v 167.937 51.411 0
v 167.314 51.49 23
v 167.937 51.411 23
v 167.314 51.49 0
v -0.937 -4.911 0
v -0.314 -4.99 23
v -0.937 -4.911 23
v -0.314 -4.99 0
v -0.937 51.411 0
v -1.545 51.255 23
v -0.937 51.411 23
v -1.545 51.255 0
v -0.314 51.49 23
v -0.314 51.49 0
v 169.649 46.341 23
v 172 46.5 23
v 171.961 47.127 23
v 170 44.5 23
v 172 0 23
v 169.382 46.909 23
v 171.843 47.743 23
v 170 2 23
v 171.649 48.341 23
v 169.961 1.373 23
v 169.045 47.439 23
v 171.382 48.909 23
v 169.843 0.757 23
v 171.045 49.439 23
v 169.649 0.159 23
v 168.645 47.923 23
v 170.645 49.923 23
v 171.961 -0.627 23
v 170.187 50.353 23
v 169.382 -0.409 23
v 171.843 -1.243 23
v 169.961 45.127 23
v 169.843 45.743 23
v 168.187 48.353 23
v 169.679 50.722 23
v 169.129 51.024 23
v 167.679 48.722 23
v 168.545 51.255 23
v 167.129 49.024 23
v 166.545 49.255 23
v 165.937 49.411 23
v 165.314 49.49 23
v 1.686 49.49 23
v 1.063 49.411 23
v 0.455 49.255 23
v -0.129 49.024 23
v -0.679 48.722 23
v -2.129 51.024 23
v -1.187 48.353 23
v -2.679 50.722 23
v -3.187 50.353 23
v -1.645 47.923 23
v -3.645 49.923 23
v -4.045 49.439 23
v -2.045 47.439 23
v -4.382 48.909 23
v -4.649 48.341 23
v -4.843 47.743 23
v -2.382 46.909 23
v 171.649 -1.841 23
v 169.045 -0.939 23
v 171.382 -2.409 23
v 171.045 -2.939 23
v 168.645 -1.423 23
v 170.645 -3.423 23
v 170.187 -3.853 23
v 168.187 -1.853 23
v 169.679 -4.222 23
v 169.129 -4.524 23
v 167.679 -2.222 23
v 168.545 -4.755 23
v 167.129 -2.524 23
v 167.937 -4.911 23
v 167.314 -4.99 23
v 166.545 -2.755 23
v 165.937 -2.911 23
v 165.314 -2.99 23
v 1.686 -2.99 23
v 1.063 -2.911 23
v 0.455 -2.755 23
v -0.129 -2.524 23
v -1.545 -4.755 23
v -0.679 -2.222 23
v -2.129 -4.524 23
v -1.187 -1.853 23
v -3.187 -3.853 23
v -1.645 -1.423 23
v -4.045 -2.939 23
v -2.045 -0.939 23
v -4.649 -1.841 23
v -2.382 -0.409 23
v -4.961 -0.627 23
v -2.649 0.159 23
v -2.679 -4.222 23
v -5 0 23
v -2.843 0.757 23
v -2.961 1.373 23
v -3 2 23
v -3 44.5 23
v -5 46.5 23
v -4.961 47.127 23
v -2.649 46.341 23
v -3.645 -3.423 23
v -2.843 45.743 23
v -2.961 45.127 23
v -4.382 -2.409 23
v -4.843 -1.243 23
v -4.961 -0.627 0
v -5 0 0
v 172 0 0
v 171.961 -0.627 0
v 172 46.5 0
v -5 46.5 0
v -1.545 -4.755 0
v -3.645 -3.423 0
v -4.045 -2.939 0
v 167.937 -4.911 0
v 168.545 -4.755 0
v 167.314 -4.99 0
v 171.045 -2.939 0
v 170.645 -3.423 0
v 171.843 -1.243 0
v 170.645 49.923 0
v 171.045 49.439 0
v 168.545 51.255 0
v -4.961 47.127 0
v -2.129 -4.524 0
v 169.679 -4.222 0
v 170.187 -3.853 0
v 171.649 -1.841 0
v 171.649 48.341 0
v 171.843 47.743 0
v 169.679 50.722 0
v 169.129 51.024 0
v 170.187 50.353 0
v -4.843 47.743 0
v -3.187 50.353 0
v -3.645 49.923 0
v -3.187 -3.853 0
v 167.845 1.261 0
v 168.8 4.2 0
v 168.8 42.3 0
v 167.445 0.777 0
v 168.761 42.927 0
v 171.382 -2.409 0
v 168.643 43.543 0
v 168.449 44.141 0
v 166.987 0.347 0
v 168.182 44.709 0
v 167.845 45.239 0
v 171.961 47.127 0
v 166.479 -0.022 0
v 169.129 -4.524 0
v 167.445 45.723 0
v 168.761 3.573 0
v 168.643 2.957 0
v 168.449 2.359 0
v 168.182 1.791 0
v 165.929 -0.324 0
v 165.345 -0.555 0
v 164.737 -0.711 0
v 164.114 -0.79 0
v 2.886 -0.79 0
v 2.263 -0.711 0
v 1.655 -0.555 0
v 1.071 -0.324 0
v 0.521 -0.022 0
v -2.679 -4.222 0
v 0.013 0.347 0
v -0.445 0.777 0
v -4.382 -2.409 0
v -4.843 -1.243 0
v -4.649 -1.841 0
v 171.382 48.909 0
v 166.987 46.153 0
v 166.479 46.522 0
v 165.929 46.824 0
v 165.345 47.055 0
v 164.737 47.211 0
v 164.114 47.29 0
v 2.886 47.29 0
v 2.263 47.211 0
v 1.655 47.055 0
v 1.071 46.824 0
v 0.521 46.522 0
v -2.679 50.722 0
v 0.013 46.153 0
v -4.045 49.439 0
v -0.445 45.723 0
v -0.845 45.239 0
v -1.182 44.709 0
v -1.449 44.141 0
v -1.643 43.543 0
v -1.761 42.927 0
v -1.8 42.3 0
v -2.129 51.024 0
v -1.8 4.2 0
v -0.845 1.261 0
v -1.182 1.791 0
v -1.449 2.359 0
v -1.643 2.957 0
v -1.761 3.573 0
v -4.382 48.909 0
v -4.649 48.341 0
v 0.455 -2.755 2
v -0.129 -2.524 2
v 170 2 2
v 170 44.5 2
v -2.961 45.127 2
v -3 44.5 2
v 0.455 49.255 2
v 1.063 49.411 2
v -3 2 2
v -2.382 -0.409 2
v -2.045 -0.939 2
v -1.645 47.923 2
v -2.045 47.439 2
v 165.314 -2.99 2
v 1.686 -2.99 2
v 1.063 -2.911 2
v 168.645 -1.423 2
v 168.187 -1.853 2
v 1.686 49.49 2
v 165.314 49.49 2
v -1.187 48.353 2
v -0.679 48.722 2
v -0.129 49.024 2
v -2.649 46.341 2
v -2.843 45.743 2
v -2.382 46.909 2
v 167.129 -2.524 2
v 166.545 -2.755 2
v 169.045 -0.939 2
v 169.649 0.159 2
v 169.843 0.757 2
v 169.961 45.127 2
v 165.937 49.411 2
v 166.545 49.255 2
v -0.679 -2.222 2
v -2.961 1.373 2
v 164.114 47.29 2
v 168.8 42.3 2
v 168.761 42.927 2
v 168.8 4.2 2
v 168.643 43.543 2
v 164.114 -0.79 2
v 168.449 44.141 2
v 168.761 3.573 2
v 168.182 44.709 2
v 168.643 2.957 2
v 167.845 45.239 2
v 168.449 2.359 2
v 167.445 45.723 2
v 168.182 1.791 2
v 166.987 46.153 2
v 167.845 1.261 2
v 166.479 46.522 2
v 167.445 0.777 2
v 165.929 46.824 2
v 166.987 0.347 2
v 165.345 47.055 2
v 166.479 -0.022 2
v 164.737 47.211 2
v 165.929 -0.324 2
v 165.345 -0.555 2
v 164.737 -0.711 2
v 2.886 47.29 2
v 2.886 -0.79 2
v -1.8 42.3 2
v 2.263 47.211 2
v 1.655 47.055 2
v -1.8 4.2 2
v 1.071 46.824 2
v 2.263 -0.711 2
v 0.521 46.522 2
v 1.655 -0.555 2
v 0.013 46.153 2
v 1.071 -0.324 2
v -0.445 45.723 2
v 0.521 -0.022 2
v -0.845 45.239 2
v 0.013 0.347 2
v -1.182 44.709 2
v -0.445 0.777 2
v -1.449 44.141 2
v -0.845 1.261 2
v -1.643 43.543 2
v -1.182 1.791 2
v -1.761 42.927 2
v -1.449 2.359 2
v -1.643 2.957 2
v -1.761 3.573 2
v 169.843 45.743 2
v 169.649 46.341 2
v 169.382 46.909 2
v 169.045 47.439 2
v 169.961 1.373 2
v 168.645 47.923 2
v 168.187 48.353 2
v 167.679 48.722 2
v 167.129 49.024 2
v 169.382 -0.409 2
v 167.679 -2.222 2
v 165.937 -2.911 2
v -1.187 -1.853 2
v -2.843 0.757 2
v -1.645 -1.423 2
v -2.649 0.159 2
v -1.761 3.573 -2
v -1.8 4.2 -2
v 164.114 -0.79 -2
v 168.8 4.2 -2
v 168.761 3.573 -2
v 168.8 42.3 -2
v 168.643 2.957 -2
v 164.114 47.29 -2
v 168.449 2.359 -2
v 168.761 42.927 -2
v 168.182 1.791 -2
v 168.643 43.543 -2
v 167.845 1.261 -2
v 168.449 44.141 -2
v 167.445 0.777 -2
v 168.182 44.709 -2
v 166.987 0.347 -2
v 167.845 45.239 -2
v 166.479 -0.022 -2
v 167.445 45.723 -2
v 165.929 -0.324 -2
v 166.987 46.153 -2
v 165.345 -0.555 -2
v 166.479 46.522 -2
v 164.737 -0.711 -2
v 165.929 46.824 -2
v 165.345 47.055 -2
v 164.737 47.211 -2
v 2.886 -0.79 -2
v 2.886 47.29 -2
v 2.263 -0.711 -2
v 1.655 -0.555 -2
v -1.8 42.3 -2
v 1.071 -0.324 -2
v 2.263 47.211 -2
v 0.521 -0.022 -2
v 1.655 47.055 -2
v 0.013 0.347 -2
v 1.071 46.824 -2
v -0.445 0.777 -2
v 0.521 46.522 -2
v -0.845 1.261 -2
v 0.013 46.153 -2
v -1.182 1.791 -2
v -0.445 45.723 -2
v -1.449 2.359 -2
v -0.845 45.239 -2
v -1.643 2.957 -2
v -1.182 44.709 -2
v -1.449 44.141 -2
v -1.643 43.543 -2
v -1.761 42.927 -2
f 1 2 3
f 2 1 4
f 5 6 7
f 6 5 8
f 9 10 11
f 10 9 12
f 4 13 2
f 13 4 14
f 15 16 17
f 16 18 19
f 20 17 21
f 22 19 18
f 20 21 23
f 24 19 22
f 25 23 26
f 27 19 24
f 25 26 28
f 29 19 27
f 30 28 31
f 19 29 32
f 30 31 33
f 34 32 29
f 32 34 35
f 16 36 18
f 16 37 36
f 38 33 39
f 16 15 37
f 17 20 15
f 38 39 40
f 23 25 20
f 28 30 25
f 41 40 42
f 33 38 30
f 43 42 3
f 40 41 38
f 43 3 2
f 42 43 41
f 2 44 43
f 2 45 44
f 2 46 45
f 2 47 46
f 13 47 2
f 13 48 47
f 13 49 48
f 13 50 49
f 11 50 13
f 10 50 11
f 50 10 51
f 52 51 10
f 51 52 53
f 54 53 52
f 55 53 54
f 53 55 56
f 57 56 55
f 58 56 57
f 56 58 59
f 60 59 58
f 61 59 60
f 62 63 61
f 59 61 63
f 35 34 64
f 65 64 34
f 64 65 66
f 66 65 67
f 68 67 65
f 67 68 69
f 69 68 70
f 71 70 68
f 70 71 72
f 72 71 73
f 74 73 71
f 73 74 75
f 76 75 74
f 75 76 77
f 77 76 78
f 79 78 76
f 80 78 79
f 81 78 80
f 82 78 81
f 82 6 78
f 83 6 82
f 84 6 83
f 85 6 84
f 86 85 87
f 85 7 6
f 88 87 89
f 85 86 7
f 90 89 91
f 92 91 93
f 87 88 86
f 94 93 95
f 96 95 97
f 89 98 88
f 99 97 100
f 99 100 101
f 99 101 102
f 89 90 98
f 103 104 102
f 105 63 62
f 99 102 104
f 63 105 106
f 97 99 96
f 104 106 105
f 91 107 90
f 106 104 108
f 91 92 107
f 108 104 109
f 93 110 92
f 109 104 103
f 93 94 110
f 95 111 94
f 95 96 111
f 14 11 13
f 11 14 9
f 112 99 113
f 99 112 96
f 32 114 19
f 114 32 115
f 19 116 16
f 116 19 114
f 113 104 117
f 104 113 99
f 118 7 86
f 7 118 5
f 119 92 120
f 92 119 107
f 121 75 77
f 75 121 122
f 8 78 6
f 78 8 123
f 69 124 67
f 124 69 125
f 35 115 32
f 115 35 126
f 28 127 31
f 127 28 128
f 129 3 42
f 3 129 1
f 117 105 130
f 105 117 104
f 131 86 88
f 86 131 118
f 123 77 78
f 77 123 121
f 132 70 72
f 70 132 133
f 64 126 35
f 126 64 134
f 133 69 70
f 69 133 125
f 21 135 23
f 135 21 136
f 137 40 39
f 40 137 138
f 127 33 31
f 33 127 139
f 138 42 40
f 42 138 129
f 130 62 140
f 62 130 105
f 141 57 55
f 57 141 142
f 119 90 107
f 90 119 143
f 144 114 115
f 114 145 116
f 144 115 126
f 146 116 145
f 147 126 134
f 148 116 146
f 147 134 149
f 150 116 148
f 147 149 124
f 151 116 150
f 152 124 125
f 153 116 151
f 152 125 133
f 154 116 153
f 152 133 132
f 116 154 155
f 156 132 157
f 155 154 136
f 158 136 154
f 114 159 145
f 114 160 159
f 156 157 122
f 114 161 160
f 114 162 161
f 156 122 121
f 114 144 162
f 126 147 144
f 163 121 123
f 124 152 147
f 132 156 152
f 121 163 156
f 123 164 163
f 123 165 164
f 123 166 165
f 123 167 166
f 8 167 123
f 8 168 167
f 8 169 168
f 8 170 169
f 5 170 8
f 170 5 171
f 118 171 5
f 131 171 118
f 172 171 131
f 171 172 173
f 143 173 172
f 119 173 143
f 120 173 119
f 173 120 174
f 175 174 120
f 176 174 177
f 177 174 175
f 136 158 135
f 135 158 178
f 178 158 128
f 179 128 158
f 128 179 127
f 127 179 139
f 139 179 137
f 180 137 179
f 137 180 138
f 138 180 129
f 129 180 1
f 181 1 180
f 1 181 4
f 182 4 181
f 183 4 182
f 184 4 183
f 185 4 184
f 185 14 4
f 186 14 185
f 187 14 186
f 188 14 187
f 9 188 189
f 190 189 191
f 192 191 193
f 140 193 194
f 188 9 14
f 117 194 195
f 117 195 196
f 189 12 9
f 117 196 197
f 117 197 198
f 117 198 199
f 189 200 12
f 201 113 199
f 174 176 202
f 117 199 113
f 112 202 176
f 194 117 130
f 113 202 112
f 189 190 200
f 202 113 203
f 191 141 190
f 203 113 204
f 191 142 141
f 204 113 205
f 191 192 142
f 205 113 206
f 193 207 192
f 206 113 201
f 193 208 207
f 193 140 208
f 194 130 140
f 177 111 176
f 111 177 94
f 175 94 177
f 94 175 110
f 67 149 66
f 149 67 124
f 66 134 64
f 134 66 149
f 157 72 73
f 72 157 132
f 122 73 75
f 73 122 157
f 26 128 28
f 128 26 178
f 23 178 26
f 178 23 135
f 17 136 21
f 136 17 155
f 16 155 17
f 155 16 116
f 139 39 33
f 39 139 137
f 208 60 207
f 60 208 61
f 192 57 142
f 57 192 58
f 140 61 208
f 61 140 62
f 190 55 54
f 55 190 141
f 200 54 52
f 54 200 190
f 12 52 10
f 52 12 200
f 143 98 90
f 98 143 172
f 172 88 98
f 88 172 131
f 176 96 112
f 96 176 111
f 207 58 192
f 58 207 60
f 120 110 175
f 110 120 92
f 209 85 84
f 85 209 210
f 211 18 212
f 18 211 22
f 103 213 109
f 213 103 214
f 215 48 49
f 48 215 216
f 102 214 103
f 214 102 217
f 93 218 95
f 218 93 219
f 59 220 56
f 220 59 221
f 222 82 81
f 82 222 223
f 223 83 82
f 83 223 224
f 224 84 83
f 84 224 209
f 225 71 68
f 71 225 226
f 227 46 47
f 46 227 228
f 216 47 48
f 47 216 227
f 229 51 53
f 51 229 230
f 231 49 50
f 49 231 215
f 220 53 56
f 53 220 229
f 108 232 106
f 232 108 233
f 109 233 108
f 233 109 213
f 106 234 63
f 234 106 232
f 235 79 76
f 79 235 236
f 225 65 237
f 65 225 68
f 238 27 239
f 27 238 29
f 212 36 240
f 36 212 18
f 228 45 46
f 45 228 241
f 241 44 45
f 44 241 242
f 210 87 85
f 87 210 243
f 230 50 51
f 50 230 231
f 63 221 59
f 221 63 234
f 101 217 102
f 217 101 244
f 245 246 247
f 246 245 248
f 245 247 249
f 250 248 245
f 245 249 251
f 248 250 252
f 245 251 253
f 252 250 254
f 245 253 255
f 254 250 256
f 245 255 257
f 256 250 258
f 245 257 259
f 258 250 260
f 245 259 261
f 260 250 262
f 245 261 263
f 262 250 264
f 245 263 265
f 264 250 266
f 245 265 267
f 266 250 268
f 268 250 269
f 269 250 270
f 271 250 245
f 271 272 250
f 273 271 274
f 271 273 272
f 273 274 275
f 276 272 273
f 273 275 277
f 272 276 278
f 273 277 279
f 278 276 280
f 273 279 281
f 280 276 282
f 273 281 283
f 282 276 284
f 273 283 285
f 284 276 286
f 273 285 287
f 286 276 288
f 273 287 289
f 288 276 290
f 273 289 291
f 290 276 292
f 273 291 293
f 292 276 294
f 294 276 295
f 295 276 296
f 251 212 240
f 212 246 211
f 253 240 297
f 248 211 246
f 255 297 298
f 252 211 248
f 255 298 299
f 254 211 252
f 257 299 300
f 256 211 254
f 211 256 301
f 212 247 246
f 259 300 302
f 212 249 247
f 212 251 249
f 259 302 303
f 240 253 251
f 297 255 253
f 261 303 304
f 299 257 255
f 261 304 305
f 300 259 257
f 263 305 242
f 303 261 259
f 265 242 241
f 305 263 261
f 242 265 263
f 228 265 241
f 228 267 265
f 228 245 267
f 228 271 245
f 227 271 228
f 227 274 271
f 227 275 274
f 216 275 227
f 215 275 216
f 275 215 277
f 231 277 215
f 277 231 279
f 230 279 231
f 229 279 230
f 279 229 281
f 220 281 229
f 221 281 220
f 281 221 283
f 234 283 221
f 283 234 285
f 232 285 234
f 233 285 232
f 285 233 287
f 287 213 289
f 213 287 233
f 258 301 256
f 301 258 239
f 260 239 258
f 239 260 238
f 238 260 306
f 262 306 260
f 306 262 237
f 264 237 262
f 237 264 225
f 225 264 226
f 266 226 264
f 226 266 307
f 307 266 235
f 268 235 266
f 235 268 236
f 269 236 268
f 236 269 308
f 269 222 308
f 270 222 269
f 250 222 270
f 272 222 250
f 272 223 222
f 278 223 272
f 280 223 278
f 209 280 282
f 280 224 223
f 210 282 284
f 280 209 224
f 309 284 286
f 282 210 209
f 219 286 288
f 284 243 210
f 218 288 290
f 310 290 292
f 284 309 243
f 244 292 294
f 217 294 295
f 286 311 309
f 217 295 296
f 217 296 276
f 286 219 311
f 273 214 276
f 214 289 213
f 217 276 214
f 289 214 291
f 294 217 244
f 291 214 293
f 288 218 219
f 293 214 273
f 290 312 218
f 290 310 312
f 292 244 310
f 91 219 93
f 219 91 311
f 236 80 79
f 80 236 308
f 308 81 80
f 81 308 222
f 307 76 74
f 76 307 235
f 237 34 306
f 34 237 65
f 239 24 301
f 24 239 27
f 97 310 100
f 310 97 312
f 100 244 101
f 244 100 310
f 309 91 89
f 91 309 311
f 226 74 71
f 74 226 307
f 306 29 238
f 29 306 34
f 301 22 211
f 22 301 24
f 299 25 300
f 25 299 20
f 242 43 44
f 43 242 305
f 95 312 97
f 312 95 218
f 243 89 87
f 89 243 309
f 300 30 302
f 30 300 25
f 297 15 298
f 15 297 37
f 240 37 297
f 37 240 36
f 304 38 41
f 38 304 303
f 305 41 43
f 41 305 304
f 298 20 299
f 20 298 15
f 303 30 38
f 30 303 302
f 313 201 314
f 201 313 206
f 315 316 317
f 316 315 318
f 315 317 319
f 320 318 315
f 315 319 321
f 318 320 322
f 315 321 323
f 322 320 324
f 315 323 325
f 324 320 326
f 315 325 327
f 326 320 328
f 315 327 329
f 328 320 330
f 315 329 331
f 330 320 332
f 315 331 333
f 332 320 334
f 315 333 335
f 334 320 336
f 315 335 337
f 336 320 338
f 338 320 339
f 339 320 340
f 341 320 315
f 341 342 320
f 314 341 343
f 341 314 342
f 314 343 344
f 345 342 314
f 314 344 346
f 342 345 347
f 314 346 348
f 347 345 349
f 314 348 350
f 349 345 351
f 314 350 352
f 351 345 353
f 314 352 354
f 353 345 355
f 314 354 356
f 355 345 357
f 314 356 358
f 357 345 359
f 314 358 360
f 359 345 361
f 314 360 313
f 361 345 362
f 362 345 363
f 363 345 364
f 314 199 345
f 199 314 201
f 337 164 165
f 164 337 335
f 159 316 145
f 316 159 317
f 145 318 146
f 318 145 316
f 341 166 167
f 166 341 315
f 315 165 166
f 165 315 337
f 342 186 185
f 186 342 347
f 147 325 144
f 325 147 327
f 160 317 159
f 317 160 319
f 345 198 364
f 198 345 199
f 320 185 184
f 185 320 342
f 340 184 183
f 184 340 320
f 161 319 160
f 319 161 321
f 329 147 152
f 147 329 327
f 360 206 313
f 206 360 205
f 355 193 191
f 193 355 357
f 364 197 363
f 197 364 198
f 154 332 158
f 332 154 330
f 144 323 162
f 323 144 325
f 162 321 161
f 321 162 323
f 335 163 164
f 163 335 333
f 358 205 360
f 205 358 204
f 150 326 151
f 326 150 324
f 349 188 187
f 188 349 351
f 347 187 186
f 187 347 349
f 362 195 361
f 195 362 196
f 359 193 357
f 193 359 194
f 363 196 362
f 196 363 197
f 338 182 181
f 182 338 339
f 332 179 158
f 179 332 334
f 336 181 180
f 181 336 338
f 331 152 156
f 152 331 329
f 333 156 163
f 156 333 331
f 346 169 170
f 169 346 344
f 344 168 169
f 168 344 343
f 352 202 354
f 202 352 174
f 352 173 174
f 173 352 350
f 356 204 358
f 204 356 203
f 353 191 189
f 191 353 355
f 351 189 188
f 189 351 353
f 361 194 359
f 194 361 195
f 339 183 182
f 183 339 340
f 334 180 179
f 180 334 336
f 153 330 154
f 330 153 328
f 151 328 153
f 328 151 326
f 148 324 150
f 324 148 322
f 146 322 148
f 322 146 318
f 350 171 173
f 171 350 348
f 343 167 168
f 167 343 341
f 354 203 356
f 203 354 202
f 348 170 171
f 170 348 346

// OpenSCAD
$fn=50;
voff1 = 14;
voff2 = 38;
hoff1 = 15;
hoff2 = 16;
height = 12;

translate([3.2,4.2,-2])
    minkowski() {
        cube([160.6,38.1,2]);
        cylinder(h=2, d=10);
    };

difference() {
    minkowski() {
        cube([167,46.5,11.5]);
        cylinder(h=11.5, d=10);
    };
    translate([2,2,2])
    minkowski() {
        cube([163,42.5,11.5]);
        cylinder(h=11.5, d=10);
    };
};
